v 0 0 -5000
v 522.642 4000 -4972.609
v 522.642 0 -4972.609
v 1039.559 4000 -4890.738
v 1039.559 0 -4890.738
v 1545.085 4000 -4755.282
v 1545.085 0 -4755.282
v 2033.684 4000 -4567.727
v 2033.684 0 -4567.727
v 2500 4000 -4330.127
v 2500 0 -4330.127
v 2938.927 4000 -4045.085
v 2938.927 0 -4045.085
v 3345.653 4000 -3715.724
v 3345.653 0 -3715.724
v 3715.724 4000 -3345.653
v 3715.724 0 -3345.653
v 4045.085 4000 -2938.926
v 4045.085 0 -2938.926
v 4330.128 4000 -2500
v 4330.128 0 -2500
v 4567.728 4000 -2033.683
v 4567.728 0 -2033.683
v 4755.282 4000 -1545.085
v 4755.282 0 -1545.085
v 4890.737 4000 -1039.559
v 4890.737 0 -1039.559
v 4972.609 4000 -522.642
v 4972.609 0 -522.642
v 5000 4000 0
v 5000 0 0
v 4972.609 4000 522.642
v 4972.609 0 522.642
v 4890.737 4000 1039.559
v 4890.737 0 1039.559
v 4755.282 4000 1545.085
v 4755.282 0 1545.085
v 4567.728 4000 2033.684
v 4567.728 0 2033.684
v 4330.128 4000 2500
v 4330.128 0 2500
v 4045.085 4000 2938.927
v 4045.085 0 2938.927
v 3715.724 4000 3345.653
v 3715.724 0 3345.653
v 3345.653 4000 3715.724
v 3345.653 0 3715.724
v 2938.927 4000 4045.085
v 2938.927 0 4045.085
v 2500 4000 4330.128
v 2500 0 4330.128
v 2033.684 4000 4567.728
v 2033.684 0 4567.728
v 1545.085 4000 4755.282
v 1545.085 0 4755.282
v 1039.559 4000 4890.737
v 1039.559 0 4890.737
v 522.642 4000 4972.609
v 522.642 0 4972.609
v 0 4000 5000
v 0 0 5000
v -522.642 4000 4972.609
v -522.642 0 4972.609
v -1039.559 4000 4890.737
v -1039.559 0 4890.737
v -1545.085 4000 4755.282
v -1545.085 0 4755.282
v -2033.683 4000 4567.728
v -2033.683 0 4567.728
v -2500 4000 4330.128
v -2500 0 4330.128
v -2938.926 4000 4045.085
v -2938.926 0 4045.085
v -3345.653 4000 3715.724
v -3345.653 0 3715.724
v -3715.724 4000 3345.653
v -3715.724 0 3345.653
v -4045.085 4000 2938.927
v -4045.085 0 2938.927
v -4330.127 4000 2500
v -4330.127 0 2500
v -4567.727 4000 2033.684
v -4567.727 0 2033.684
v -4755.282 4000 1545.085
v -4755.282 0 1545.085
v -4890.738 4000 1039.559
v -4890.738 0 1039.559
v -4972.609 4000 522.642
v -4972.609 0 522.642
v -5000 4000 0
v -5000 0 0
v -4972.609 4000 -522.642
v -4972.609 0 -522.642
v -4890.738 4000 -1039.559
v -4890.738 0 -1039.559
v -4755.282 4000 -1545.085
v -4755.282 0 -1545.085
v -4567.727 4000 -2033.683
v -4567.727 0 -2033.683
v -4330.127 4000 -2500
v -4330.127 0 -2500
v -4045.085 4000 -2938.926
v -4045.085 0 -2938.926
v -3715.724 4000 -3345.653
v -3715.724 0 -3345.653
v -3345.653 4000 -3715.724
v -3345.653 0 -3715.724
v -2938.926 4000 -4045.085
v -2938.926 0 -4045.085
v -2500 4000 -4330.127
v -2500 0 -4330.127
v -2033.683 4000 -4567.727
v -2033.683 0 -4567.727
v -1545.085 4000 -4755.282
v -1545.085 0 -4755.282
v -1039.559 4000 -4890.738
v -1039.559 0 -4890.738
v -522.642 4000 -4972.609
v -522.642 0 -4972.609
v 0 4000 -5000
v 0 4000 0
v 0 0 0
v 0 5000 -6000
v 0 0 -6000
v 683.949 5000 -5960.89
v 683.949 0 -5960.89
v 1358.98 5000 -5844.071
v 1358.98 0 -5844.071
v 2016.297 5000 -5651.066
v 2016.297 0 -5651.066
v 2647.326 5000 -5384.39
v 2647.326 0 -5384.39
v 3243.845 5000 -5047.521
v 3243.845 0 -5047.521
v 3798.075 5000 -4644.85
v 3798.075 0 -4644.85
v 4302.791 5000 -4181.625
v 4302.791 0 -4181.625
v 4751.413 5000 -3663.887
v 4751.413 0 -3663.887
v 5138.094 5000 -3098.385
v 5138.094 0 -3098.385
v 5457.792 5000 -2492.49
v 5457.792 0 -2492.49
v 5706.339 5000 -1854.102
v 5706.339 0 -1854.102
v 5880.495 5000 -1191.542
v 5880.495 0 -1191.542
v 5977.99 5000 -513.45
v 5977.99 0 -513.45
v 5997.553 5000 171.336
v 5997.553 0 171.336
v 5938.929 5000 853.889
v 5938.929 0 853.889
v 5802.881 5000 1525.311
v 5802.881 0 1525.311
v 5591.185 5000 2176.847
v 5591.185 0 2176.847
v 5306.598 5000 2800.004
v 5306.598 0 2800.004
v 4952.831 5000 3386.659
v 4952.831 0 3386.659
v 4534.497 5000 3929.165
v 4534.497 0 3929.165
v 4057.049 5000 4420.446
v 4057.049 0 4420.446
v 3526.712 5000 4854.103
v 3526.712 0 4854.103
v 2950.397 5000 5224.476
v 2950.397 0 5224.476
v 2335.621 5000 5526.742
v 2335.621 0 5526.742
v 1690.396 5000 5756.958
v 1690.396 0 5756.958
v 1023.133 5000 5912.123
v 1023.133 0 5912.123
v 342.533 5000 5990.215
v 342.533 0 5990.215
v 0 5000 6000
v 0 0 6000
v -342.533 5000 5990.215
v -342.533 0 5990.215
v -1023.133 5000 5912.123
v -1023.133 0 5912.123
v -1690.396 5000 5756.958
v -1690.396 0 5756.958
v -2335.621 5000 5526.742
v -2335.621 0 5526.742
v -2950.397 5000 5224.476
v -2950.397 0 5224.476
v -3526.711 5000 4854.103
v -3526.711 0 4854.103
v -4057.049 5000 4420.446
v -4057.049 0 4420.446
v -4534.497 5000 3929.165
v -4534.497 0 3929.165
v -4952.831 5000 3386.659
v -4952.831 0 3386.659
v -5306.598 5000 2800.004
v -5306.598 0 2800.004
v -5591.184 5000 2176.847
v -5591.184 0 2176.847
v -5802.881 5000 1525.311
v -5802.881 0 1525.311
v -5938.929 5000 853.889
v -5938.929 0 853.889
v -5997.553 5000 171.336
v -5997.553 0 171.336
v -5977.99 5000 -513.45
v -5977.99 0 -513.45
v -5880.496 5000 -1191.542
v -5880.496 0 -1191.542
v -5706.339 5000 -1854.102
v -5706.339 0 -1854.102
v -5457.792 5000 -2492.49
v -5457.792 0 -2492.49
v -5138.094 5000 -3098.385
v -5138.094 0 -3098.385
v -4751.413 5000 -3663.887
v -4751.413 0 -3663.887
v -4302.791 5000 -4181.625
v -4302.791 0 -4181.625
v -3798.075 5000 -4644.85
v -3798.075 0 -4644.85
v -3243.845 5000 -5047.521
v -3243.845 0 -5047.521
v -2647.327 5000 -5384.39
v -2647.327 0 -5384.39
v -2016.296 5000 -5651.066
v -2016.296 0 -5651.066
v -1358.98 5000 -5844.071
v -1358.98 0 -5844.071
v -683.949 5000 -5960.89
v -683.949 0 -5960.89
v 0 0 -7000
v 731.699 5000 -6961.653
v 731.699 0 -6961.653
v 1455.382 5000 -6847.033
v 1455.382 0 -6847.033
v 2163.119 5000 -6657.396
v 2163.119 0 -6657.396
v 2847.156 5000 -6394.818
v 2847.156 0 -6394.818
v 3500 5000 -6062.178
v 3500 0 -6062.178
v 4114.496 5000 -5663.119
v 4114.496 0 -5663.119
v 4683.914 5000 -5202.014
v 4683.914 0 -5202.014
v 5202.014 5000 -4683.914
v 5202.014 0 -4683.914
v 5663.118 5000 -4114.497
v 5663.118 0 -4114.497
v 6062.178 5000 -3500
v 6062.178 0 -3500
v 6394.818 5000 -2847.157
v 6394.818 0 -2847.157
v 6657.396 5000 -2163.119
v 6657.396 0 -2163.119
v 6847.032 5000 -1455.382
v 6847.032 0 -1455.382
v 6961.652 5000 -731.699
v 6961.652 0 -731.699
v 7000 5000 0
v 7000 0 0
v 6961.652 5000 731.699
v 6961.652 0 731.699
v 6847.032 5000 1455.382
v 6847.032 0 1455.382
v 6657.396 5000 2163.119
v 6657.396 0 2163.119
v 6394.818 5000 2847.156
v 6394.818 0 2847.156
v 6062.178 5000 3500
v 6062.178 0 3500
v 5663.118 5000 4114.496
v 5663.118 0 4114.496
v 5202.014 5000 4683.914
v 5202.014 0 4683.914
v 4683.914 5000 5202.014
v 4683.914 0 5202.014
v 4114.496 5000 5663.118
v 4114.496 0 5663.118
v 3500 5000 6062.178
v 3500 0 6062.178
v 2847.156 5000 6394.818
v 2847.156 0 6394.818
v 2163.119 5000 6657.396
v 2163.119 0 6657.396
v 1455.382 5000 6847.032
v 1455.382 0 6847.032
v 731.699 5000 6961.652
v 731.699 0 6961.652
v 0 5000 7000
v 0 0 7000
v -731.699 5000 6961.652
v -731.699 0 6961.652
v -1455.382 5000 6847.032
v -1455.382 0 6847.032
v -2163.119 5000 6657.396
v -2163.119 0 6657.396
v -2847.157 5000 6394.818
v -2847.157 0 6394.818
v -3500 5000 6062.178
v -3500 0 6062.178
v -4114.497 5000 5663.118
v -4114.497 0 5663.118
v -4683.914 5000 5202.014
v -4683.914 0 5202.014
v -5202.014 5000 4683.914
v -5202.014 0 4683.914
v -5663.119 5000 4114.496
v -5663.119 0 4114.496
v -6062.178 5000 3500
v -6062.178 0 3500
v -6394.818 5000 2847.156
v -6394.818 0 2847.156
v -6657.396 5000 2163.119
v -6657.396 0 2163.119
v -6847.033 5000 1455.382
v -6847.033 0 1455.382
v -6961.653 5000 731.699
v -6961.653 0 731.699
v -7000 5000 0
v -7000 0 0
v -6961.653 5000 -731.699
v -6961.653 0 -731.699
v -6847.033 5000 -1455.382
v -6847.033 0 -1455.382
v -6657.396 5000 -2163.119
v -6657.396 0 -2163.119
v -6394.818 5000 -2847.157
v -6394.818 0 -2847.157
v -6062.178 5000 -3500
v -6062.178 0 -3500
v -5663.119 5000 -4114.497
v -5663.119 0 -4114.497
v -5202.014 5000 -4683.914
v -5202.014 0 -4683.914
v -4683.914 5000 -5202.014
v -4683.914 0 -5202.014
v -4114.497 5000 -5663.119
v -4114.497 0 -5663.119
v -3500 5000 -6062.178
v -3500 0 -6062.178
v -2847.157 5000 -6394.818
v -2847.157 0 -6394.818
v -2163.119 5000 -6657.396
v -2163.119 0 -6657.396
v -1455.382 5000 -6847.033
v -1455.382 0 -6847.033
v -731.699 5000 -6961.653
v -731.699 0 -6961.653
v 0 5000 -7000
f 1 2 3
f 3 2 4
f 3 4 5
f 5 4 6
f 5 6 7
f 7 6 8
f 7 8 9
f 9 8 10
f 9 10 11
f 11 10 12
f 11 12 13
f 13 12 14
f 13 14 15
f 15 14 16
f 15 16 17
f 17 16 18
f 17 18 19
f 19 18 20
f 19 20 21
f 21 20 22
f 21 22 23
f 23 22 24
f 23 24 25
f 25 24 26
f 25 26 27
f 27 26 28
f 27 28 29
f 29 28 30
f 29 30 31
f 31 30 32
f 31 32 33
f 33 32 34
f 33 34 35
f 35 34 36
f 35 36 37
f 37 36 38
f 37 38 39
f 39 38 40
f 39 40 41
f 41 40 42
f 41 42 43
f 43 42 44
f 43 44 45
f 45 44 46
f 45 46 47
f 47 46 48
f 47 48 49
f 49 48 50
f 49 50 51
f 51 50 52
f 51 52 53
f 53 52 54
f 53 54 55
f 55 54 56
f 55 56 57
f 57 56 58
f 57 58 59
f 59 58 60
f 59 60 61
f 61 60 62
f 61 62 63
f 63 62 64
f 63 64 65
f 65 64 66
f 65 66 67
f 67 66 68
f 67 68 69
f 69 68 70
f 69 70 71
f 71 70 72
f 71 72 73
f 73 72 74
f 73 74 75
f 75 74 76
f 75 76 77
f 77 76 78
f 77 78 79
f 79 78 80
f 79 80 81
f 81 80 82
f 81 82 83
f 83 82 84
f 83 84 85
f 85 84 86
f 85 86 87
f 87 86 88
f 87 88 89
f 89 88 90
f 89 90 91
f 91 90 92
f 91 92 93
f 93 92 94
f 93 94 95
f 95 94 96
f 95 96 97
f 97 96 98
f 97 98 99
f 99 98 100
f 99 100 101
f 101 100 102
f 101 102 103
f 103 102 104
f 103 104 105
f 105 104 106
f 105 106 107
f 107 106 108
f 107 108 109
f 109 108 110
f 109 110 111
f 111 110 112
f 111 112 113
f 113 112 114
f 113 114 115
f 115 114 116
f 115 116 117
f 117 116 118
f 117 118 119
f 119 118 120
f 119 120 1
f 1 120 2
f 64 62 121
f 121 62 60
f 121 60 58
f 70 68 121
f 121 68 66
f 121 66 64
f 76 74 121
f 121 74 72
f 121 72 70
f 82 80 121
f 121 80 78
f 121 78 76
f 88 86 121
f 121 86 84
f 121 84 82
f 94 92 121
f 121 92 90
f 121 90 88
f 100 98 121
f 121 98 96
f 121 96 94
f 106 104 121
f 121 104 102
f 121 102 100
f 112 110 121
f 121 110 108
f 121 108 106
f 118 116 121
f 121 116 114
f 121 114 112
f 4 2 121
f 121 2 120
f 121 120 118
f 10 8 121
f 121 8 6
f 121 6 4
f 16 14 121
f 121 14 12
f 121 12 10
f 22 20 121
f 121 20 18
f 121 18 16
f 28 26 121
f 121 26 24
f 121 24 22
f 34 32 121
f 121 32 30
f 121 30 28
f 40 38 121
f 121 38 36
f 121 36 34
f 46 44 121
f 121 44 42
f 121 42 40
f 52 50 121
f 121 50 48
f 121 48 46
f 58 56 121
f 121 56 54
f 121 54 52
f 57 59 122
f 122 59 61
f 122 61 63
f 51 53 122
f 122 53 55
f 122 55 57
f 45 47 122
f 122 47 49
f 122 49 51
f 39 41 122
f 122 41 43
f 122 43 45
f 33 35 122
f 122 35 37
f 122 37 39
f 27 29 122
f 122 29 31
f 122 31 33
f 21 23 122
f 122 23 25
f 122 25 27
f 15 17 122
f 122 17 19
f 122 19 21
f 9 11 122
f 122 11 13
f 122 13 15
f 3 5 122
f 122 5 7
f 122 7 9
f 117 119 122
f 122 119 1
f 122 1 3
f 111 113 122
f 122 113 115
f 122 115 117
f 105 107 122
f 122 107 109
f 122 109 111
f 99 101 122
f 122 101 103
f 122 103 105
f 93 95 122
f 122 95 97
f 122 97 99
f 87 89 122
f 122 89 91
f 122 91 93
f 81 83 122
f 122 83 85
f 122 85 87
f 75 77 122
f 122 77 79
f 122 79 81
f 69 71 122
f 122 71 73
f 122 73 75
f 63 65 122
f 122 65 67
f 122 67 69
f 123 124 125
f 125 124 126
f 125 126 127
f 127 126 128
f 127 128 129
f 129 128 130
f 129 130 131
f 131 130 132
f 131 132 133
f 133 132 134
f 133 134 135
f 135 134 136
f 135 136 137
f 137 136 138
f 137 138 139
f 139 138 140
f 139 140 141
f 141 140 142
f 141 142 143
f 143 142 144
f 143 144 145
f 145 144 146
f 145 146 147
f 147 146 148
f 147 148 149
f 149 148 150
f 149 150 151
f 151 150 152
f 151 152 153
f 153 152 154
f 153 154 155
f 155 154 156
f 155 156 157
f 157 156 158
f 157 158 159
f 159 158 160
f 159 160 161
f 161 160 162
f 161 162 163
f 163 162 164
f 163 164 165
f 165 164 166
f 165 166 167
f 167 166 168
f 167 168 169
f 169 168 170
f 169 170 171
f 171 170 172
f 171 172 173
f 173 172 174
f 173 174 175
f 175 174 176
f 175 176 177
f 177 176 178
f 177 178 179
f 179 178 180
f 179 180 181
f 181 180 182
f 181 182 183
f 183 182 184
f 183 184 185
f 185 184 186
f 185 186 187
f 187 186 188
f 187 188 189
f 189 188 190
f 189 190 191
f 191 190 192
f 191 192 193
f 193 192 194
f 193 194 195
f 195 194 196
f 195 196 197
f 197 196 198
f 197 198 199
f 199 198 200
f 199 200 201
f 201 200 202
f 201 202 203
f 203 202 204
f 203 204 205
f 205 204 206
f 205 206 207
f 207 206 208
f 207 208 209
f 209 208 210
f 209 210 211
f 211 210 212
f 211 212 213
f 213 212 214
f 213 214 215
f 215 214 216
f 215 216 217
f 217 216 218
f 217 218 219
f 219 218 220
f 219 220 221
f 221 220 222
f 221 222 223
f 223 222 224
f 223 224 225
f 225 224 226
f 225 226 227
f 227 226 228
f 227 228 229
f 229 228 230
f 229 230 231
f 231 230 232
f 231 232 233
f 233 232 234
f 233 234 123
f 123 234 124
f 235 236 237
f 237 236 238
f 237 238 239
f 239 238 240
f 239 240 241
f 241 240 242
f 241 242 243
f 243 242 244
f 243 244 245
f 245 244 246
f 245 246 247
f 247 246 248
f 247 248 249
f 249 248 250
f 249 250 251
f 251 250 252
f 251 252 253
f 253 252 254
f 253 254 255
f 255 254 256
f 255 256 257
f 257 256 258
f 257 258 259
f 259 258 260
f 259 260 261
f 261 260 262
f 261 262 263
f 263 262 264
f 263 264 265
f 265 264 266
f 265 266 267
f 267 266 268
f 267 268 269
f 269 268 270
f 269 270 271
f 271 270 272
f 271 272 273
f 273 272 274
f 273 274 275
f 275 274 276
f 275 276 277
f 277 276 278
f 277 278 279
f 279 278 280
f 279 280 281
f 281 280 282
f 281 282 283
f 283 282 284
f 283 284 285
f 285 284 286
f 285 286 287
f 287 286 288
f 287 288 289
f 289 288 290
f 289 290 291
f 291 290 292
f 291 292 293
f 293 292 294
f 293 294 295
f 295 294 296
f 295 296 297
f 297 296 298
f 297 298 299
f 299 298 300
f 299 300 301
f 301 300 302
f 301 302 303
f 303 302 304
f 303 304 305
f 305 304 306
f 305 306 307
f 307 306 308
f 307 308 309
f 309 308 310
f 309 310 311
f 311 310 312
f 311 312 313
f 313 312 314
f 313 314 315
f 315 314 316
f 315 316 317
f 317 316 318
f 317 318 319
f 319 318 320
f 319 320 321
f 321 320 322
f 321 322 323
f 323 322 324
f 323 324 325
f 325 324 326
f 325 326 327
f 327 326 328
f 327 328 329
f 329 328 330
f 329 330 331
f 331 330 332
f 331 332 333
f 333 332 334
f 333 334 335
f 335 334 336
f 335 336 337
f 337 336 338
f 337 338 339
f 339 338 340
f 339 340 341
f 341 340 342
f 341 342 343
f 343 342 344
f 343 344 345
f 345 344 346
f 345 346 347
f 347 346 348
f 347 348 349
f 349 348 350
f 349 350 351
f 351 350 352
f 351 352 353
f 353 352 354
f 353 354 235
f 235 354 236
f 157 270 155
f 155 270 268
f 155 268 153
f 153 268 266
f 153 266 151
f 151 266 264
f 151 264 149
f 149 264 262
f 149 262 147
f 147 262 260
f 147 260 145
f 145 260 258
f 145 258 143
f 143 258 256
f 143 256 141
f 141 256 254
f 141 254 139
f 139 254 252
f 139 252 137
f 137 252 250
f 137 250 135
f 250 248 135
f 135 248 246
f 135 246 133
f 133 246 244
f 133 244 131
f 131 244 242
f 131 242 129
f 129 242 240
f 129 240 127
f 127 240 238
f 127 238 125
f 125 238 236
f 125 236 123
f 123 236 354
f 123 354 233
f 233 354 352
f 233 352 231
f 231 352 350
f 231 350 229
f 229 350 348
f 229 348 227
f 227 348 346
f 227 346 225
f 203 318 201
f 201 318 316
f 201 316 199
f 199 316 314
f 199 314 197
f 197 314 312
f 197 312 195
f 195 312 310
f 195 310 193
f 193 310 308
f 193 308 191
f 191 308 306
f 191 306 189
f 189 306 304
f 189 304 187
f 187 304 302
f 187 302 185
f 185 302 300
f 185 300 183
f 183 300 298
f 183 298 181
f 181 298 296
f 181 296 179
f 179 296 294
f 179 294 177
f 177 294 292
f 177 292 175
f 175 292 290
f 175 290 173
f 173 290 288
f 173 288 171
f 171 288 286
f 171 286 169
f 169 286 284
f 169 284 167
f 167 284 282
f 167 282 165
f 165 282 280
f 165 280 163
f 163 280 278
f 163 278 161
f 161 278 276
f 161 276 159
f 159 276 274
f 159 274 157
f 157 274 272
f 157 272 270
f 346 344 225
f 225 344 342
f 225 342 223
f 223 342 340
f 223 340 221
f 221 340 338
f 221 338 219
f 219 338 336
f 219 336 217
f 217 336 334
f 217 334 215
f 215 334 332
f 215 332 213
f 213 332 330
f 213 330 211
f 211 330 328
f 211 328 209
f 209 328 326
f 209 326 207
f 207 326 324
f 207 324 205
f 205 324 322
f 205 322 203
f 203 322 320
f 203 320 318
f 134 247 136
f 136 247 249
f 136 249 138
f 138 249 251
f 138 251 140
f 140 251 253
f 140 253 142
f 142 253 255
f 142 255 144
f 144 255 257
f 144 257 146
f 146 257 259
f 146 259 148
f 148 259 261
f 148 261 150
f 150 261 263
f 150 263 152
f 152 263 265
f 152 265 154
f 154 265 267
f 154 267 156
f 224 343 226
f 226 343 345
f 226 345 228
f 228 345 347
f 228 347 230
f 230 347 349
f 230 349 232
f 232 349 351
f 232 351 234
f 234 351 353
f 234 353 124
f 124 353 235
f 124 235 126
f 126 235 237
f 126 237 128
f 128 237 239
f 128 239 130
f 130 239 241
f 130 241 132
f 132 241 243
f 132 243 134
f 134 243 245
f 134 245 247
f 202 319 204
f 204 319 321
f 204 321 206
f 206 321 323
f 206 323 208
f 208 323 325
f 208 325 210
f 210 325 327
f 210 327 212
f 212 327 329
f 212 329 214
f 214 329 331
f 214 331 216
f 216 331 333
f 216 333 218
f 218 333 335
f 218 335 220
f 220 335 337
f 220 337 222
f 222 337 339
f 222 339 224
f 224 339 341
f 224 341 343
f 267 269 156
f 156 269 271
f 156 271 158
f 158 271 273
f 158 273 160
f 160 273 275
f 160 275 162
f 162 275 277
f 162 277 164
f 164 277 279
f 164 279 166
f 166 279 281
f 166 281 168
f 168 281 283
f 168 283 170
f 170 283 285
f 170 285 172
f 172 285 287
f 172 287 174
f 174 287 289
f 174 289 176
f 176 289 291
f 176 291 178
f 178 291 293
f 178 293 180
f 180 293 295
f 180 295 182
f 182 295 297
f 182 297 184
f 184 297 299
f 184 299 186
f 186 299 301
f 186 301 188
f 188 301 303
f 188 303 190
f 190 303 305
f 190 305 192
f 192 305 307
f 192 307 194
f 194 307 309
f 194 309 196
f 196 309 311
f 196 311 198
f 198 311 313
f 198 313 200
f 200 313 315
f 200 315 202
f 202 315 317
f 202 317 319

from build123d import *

# Parameters (mm, degrees)
BASE_R        = 5000
GROUND_DEPTH  = 4000
SKETCH1_3_R   = 7000
SKETCH1_3_R_2 = 6000
WALL_DEPTH    = 5000


with BuildPart() as part:
    # Base → Ground (new body)
    with BuildSketch(Plane(origin=(0, 0, 0), x_dir=(1, 0, 0), z_dir=(0, 1, 0))):
        Circle(BASE_R)
    extrude(amount=GROUND_DEPTH)


with BuildPart() as body_2:
    # Sketch1<3> → Wall (new body)
    with BuildSketch(Plane(origin=(0, 0, 0), x_dir=(1, 0, 0), z_dir=(0, 1, 0))):
        Circle(SKETCH1_3_R)
        Circle(SKETCH1_3_R_2, mode=Mode.SUBTRACT)
    extrude(amount=WALL_DEPTH)


solid = Compound([part.part, body_2.part])
